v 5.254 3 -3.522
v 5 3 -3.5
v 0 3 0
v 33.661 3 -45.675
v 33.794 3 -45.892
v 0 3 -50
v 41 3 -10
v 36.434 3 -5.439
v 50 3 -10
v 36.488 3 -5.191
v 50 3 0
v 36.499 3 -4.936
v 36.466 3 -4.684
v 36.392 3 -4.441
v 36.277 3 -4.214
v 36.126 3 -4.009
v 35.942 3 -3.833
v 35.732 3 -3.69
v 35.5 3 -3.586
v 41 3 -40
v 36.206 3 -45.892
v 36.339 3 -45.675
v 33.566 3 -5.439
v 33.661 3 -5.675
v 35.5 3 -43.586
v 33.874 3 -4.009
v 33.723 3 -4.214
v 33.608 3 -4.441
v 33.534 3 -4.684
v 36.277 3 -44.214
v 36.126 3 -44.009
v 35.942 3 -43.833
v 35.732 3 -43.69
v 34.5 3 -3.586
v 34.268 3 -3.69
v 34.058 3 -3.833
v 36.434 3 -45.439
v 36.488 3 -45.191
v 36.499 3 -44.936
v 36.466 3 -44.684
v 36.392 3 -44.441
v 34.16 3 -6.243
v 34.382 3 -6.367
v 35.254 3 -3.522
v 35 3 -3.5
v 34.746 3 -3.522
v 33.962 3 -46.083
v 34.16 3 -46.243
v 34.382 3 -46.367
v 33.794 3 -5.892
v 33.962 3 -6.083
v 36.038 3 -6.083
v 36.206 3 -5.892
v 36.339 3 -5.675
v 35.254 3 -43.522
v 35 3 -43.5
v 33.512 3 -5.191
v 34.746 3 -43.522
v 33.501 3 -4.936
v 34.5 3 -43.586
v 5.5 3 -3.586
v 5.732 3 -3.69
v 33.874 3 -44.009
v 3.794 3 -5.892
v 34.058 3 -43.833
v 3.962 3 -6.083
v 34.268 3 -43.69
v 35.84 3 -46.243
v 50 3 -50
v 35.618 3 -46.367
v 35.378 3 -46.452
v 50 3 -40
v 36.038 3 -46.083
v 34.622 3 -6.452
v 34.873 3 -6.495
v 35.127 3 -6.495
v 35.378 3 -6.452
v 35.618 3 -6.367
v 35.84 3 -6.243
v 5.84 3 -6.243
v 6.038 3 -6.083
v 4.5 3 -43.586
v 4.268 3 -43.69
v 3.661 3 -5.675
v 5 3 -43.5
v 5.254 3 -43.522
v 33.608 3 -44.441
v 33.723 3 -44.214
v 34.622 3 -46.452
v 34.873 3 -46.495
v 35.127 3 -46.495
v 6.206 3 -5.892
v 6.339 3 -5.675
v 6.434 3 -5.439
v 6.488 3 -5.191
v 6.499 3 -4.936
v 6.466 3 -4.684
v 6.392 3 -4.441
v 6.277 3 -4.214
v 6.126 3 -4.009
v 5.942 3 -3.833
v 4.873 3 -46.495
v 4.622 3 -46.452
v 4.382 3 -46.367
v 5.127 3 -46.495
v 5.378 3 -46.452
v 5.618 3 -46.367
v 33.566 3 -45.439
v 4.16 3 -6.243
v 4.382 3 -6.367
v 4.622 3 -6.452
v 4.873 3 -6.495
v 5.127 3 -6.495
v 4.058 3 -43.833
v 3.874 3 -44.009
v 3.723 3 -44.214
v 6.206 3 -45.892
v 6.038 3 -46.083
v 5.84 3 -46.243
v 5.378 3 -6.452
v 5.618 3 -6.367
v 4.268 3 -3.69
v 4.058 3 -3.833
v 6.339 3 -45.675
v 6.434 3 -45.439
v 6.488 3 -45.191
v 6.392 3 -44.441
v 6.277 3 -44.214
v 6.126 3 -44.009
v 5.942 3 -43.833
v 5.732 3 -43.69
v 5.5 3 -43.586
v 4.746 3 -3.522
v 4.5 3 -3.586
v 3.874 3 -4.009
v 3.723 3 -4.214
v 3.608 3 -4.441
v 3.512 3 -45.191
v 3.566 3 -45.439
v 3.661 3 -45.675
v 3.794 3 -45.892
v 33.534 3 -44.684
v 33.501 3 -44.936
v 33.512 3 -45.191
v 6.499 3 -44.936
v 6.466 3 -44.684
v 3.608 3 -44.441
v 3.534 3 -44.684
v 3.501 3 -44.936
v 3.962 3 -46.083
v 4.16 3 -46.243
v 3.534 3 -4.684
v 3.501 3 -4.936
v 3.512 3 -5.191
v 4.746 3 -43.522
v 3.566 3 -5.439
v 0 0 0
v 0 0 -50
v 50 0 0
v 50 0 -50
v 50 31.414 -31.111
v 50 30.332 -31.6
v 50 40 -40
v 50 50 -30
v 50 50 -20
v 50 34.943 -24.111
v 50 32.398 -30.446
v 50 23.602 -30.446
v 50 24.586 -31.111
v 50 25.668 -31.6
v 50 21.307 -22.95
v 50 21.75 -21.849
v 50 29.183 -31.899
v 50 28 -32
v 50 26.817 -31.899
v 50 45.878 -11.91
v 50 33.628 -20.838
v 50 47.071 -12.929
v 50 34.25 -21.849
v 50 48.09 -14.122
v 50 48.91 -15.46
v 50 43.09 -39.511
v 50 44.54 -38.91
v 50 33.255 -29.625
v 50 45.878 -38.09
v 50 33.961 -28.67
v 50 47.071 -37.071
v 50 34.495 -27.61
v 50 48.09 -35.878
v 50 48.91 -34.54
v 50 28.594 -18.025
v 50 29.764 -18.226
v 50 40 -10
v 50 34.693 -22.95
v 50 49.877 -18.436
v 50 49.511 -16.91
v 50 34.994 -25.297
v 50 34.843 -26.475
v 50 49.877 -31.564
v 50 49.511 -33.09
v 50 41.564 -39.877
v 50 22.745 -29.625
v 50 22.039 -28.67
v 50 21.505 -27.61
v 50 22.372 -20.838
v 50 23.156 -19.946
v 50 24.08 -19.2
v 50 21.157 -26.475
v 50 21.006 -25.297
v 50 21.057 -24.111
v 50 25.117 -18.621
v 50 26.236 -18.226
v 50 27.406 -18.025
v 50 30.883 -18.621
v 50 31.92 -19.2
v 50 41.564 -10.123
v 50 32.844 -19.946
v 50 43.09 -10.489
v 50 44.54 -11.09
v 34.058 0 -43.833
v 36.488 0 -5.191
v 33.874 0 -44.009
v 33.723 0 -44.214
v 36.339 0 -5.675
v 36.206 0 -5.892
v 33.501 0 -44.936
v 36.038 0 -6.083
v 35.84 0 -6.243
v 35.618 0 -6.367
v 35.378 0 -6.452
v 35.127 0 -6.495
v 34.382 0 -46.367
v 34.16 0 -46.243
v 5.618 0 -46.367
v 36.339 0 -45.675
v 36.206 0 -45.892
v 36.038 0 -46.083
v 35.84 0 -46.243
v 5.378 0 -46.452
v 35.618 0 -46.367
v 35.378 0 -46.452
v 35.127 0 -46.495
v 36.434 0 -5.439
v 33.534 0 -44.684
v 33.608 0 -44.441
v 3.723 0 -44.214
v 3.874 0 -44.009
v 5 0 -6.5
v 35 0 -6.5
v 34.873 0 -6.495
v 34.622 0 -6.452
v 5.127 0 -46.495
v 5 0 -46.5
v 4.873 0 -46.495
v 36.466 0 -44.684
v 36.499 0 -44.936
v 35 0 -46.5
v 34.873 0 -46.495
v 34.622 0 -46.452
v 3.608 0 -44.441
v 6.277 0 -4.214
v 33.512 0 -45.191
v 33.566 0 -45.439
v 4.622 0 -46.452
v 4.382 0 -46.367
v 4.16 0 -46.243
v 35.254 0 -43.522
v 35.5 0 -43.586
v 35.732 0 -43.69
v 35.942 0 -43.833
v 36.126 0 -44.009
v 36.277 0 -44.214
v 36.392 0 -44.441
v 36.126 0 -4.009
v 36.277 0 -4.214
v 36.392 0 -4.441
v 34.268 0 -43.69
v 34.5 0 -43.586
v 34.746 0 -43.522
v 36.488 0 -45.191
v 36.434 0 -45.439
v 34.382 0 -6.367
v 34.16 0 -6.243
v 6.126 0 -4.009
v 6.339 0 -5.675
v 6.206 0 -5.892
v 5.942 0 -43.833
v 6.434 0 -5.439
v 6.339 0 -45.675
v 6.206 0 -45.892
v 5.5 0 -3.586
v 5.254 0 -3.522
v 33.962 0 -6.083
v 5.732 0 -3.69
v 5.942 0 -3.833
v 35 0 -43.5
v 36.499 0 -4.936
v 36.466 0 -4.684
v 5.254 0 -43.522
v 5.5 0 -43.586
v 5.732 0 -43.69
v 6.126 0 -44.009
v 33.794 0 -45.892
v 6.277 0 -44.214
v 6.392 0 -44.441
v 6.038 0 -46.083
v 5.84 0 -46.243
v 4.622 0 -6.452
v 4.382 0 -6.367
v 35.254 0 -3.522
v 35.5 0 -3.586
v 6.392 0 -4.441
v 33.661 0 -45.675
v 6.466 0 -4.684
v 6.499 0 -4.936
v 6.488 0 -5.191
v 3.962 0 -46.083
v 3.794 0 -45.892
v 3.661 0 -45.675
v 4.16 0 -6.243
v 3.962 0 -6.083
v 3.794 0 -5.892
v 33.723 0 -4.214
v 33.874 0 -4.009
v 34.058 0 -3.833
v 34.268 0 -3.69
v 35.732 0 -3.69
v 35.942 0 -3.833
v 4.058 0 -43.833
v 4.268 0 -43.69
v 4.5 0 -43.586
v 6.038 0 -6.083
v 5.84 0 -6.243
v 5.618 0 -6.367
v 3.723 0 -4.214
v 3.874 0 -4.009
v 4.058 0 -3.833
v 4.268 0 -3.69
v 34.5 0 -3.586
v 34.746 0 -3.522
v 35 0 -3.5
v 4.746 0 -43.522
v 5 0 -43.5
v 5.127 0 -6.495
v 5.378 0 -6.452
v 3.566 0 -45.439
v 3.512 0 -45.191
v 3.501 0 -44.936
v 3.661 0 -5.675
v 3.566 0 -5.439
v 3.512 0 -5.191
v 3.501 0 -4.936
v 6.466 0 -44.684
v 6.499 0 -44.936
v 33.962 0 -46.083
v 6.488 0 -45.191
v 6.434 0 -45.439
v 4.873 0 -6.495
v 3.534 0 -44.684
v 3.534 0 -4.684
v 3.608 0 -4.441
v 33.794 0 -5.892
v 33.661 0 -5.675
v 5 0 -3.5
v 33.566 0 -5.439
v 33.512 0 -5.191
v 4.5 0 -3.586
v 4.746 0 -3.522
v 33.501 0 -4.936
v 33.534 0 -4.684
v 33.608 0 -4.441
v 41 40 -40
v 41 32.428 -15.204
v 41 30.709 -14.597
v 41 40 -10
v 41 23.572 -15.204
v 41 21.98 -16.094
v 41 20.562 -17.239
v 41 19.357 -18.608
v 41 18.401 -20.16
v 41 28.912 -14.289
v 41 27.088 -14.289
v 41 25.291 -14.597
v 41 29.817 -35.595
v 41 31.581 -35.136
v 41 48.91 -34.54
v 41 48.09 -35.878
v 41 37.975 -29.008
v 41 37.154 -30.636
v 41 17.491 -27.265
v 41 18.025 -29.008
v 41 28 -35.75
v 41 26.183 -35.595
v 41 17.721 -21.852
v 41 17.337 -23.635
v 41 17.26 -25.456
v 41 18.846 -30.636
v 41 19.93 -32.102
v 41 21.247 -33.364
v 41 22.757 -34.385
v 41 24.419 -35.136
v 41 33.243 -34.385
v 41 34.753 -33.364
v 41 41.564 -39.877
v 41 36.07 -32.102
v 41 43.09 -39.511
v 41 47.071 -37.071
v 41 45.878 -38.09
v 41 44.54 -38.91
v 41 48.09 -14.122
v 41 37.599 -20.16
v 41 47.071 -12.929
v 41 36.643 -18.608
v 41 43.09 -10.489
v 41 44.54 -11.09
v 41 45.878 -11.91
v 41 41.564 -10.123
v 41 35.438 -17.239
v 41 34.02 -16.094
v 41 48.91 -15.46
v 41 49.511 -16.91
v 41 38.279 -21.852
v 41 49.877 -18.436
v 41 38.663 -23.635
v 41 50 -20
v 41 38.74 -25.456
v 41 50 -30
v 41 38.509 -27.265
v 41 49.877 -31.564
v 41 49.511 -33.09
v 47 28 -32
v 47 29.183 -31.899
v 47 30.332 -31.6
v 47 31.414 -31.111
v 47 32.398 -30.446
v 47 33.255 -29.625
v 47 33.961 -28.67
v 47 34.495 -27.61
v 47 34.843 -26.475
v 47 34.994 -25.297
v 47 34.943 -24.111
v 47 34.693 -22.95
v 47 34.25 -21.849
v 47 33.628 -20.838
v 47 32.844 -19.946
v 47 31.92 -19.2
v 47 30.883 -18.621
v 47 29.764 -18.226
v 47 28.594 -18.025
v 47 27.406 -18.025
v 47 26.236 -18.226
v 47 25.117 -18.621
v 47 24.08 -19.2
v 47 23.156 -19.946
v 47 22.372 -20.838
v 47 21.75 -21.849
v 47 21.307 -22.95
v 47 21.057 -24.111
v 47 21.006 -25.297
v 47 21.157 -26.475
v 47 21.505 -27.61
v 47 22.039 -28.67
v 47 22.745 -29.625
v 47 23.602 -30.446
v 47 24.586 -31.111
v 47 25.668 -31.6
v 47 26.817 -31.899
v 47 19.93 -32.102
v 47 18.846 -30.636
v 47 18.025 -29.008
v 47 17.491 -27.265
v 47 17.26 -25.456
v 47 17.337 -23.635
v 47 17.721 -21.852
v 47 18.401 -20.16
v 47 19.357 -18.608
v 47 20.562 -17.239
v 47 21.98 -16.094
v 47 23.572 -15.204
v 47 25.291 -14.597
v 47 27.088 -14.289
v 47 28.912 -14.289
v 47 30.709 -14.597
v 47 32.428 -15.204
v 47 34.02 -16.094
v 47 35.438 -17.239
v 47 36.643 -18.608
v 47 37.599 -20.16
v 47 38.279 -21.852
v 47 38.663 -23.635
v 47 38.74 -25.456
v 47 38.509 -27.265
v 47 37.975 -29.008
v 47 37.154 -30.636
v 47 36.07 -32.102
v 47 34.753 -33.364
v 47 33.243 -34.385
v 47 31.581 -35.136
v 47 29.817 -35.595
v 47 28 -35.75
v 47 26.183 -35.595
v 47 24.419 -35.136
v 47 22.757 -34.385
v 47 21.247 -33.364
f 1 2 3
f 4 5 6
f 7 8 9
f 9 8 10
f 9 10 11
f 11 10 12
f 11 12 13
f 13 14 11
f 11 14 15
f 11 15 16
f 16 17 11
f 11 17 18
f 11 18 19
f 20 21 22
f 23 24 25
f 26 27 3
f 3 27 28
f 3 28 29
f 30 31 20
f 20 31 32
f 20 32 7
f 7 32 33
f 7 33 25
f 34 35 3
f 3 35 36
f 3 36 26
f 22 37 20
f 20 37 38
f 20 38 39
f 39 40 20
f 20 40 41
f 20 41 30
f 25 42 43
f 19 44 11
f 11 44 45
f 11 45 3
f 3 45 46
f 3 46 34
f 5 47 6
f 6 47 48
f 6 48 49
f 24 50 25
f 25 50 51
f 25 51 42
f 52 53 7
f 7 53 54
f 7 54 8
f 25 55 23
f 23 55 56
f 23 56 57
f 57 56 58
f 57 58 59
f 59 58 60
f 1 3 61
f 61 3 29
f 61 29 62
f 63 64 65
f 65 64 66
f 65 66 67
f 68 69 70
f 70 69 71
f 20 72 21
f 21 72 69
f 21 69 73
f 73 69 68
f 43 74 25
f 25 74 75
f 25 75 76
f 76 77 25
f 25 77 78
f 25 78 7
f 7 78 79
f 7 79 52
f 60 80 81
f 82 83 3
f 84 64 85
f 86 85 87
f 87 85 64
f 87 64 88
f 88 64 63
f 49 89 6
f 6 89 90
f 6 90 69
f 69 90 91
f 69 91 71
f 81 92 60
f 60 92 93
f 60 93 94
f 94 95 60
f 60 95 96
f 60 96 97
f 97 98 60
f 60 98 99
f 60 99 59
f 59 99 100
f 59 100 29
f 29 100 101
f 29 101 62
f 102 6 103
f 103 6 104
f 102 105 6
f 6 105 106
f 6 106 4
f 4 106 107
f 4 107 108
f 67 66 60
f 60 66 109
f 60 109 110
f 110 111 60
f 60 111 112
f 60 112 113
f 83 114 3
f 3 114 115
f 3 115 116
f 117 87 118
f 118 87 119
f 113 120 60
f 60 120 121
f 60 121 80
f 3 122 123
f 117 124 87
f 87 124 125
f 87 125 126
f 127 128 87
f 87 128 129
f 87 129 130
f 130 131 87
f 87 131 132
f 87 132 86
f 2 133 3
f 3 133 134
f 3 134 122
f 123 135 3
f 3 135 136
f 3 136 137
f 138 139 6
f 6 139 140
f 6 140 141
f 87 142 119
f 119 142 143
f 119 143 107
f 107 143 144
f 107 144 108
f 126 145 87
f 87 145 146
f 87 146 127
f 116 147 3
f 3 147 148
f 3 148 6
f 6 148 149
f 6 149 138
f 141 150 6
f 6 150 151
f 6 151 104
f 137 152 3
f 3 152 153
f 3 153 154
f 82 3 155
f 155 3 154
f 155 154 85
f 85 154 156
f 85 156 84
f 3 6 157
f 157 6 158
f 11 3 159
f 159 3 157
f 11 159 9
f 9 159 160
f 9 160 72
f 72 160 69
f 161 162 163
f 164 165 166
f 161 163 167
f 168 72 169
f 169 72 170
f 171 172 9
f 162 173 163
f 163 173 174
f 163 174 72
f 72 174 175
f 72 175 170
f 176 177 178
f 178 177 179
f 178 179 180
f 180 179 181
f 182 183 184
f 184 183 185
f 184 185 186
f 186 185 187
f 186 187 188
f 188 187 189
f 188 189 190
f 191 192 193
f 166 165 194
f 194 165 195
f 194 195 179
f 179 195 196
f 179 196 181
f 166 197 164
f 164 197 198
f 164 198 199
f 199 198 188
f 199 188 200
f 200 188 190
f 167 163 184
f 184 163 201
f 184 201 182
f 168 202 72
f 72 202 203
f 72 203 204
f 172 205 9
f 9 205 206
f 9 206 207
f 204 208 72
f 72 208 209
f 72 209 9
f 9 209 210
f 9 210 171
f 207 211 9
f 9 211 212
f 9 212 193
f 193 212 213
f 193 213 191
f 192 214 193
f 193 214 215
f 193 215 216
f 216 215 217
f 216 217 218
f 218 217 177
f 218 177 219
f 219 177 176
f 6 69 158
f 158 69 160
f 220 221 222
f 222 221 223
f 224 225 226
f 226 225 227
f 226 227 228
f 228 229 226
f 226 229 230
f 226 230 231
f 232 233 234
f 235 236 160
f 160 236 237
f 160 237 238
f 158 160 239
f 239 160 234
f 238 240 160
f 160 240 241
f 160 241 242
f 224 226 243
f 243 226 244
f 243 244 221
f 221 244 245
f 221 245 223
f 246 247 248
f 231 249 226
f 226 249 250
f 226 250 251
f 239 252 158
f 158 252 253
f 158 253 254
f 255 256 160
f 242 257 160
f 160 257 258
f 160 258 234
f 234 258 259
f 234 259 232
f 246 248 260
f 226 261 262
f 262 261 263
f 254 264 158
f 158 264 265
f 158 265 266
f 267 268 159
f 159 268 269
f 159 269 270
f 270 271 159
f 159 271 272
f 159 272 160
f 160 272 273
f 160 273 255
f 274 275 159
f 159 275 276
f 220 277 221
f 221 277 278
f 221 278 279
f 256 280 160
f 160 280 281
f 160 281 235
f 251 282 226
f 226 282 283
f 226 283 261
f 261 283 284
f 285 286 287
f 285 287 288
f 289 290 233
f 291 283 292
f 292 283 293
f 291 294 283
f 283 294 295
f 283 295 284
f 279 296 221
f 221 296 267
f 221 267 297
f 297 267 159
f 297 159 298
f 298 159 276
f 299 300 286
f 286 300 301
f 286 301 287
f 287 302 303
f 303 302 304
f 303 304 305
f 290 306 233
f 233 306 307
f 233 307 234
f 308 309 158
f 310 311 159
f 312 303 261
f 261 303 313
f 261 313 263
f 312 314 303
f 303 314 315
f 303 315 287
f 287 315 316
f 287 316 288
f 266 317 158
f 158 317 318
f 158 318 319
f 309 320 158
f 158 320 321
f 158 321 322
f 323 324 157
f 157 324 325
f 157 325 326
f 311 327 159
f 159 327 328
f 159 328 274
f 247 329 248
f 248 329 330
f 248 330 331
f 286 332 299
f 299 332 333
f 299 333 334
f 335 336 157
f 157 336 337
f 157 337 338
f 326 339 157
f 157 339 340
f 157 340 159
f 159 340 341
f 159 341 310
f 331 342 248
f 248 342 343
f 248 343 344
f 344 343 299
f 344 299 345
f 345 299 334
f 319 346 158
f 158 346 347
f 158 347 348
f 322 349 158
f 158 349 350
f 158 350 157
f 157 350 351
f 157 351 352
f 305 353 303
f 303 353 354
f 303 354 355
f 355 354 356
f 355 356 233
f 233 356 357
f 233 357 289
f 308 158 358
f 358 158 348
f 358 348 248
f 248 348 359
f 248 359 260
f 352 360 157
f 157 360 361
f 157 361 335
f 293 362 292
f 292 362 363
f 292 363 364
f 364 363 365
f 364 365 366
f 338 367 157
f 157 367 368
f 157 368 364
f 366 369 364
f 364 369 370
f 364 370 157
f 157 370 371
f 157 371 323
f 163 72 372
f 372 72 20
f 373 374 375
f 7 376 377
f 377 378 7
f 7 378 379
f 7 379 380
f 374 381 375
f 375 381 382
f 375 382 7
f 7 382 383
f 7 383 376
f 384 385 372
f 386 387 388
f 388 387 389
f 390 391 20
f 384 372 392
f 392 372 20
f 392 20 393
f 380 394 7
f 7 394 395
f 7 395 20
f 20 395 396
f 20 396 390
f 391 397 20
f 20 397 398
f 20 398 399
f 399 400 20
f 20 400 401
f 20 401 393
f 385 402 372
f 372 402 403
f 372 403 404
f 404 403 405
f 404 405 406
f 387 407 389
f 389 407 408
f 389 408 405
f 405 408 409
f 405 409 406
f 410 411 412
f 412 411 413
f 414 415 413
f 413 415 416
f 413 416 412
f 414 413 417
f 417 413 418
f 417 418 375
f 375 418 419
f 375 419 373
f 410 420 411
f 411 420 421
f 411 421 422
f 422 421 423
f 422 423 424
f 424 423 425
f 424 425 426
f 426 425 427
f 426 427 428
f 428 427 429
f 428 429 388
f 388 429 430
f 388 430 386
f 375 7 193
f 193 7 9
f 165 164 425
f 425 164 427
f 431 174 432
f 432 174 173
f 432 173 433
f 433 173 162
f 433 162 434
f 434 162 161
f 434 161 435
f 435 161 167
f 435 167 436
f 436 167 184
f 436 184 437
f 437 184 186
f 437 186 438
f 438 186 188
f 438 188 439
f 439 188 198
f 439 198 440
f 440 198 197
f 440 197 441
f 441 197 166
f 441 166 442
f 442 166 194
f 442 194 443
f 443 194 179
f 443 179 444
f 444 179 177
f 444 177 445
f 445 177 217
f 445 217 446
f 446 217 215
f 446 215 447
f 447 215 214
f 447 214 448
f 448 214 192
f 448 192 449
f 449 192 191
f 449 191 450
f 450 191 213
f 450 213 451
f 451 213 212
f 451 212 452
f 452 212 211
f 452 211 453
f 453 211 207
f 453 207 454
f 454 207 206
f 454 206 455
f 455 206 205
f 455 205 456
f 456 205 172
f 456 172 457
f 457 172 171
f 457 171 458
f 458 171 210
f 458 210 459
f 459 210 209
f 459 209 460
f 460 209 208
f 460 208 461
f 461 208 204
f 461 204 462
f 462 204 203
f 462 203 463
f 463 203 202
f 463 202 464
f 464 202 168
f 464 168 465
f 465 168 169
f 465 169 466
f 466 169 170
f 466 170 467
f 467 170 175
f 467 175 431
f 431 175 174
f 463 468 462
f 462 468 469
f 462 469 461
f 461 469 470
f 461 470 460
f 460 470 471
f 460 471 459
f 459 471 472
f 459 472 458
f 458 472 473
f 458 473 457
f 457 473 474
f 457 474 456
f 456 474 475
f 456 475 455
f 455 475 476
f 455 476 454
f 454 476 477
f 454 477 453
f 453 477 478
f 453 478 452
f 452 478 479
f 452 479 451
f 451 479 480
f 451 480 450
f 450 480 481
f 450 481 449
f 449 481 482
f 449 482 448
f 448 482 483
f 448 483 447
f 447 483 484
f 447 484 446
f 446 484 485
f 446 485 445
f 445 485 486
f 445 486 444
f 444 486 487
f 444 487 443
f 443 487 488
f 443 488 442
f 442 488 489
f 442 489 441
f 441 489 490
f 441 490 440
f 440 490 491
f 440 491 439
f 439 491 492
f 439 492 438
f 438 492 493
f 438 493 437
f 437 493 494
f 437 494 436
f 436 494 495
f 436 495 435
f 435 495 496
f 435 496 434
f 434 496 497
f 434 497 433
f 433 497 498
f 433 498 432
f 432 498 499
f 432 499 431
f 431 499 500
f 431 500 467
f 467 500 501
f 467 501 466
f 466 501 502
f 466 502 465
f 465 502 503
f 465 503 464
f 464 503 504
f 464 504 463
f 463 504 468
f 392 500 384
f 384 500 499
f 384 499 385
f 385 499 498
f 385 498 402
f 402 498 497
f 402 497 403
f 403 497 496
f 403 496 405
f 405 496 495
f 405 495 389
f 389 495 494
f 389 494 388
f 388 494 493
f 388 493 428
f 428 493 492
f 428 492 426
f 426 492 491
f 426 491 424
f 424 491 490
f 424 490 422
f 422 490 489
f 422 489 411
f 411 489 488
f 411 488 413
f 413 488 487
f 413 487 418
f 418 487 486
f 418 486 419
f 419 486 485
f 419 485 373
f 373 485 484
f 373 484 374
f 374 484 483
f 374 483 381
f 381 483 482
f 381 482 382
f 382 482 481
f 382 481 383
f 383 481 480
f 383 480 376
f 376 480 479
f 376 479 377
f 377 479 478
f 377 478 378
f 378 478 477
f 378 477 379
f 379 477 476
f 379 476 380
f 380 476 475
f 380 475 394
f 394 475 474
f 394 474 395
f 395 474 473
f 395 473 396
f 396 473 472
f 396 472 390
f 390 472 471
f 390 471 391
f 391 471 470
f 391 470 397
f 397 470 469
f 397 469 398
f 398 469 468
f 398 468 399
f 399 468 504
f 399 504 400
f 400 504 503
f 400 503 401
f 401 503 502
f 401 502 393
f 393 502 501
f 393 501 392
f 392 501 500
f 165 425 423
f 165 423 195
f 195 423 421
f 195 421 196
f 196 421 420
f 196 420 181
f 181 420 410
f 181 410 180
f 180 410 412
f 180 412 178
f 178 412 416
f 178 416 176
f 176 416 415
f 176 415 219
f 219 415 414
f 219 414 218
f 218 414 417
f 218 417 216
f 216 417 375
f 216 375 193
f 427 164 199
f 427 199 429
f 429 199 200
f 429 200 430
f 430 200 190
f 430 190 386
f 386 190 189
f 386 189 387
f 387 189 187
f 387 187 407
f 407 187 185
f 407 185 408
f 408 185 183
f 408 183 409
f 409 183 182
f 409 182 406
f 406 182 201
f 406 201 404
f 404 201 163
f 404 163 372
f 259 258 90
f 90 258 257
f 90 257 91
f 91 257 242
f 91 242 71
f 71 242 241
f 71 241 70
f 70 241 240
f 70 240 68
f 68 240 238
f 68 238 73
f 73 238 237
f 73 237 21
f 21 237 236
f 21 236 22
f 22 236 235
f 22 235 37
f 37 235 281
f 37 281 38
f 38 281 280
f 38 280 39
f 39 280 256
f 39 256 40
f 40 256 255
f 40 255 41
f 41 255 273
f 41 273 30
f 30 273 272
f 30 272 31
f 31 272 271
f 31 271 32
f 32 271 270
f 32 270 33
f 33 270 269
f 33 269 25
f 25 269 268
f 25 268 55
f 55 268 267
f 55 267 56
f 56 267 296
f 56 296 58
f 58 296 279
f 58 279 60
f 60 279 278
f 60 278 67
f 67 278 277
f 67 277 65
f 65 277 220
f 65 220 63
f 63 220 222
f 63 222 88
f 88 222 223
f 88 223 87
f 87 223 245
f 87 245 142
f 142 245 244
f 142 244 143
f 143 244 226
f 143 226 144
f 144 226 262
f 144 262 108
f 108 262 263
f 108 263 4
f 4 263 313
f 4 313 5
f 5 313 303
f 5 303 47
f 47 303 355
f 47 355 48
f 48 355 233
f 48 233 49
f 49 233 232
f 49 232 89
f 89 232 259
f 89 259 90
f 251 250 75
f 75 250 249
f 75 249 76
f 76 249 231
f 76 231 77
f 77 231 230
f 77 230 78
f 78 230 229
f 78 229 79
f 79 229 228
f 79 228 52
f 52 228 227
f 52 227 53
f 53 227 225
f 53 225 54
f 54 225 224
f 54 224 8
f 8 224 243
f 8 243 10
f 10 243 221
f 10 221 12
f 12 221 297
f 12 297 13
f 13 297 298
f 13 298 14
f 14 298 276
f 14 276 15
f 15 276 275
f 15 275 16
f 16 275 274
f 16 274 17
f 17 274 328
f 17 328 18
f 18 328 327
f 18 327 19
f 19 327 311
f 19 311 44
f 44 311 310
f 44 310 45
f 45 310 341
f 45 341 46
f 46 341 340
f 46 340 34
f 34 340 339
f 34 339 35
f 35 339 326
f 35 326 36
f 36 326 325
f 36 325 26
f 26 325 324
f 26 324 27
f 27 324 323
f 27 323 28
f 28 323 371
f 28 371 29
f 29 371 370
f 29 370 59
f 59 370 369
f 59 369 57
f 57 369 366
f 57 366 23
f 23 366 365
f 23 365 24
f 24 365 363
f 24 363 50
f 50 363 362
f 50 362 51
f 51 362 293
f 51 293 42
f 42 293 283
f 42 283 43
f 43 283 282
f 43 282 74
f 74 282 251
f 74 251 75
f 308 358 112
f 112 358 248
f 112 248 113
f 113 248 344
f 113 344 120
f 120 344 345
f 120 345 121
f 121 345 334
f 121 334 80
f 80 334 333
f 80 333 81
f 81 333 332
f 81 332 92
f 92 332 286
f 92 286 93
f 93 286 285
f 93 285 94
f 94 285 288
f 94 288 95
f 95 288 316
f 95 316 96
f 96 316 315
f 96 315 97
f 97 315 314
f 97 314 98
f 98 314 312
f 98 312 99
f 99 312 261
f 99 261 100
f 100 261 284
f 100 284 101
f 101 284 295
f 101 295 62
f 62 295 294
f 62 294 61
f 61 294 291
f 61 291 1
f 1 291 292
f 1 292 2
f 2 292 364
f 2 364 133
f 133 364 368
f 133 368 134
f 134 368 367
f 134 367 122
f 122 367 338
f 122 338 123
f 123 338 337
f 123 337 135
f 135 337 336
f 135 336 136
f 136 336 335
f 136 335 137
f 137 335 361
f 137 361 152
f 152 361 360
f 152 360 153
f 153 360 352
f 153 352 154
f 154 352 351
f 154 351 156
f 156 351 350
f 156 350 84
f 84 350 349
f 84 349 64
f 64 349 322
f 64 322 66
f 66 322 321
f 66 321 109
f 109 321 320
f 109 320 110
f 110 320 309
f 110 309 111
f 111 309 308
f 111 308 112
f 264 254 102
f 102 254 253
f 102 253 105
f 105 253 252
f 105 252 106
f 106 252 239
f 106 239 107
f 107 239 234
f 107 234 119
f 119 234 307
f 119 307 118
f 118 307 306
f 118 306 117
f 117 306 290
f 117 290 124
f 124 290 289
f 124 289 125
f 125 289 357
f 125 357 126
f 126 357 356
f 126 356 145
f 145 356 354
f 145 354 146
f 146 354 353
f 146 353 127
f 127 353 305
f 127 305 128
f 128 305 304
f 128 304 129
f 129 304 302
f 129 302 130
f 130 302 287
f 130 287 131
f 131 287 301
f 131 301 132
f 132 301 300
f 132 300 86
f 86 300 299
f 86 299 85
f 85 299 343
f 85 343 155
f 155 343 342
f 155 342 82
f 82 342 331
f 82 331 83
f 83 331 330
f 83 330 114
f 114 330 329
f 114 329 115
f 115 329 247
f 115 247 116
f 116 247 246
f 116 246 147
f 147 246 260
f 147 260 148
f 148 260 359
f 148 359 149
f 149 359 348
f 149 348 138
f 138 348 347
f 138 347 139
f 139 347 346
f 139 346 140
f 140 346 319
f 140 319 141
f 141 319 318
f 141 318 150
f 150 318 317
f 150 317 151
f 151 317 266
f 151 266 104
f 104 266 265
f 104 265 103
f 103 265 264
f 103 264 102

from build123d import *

# Parameters (mm, degrees)
ESQUISSE1_W             = 50
ESQUISSE1_H             = 50
BOSS_EXTRU_1_DEPTH      = 3
ESQUISSE2_W             = 9
ESQUISSE2_H             = 30
BOSS_EXTRU_2_DEPTH      = 47
ESQUISSE3_R             = 7
ENL_V_MAT_EXTRU_2_DEPTH = 3
ENL_V_MAT_EXTRU_3_REACH = 86.906
ESQUISSE4_R             = 10.75
CONG_1_R                = 10
ENL_V_MAT_EXTRU_4_REACH = 86.906
ESQUISSE5_R             = 1.5


with BuildPart() as part:
    # Esquisse1 → Boss.-Extru.1 (new body)
    with BuildSketch(Plane(origin=(0, 0, 0), x_dir=(1, 0, 0), z_dir=(0, 1, 0))):
        with Locations((25, 25)):
            Rectangle(ESQUISSE1_W, ESQUISSE1_H)
    extrude(amount=BOSS_EXTRU_1_DEPTH)

    # Esquisse2 → Boss.-Extru.2 (add)
    with BuildSketch(Plane(origin=(0, 3, 0), x_dir=(1, 0, 0), z_dir=(0, 1, 0))):
        with Locations((45.5, 25)):
            Rectangle(ESQUISSE2_W, ESQUISSE2_H)
    extrude(amount=BOSS_EXTRU_2_DEPTH)

    # Esquisse3 → Enlèv. mat.-Extru.2 (cut)
    with BuildSketch(Plane(origin=(50, 0, 0), x_dir=(0, 0, -1), z_dir=(1, 0, 0))):
        with Locations((25, 28)):
            Circle(ESQUISSE3_R)
    extrude(amount=-ENL_V_MAT_EXTRU_2_DEPTH, mode=Mode.SUBTRACT)

    # Esquisse4 → Enlèv. mat.-Extru.3 (cut, up to next)
    with BuildSketch(Plane(origin=(47, 0, 0), x_dir=(0, 0, -1), z_dir=(1, 0, 0)), mode=Mode.PRIVATE) as enl_v_mat_extru_3_sk1:
        with Locations((25, 28)):
            Circle(ESQUISSE4_R)
    enl_v_mat_extru_3_tool1 = extrude(enl_v_mat_extru_3_sk1.sketch, amount=-ENL_V_MAT_EXTRU_3_REACH, mode=Mode.PRIVATE) & part.part
    add(enl_v_mat_extru_3_tool1.solids().sort_by_distance((47, 28, -25))[0], mode=Mode.SUBTRACT)

    # Congé1
    cong_1_edges = [part.edges().sort_by_distance(p)[0] for p in [
        (45.5, 50, -40),
        (45.5, 50, -10),
    ]]
    fillet(cong_1_edges, radius=CONG_1_R)

    # Esquisse5 → Enlèv. mat.-Extru.4 (cut, up to next)
    with BuildSketch(Plane(origin=(0, 3, 0), x_dir=(1, 0, 0), z_dir=(0, 1, 0)), mode=Mode.PRIVATE) as enl_v_mat_extru_4_sk1:
        with Locations(Location((35, 45, 0), (0, 0, 270))):
            Circle(ESQUISSE5_R)
    enl_v_mat_extru_4_tool1 = extrude(enl_v_mat_extru_4_sk1.sketch, amount=-ENL_V_MAT_EXTRU_4_REACH, mode=Mode.PRIVATE) & part.part
    # Esquisse5 → Enlèv. mat.-Extru.4 (cut, up to next)
    with BuildSketch(Plane(origin=(0, 3, 0), x_dir=(1, 0, 0), z_dir=(0, 1, 0)), mode=Mode.PRIVATE) as enl_v_mat_extru_4_sk2:
        with Locations(Location((5, 45, 0), (0, 0, 270))):
            Circle(ESQUISSE5_R)
    enl_v_mat_extru_4_tool2 = extrude(enl_v_mat_extru_4_sk2.sketch, amount=-ENL_V_MAT_EXTRU_4_REACH, mode=Mode.PRIVATE) & part.part
    # Esquisse5 → Enlèv. mat.-Extru.4 (cut, up to next)
    with BuildSketch(Plane(origin=(0, 3, 0), x_dir=(1, 0, 0), z_dir=(0, 1, 0)), mode=Mode.PRIVATE) as enl_v_mat_extru_4_sk3:
        with Locations(Location((5, 5, 0), (0, 0, 270))):
            Circle(ESQUISSE5_R)
    enl_v_mat_extru_4_tool3 = extrude(enl_v_mat_extru_4_sk3.sketch, amount=-ENL_V_MAT_EXTRU_4_REACH, mode=Mode.PRIVATE) & part.part
    # Esquisse5 → Enlèv. mat.-Extru.4 (cut, up to next)
    with BuildSketch(Plane(origin=(0, 3, 0), x_dir=(1, 0, 0), z_dir=(0, 1, 0)), mode=Mode.PRIVATE) as enl_v_mat_extru_4_sk4:
        with Locations(Location((35, 5, 0), (0, 0, 270))):
            Circle(ESQUISSE5_R)
    enl_v_mat_extru_4_tool4 = extrude(enl_v_mat_extru_4_sk4.sketch, amount=-ENL_V_MAT_EXTRU_4_REACH, mode=Mode.PRIVATE) & part.part
    add(enl_v_mat_extru_4_tool1.solids().sort_by_distance((35, 3, -45))[0], mode=Mode.SUBTRACT)
    add(enl_v_mat_extru_4_tool2.solids().sort_by_distance((5, 3, -45))[0], mode=Mode.SUBTRACT)
    add(enl_v_mat_extru_4_tool3.solids().sort_by_distance((5, 3, -5))[0], mode=Mode.SUBTRACT)
    add(enl_v_mat_extru_4_tool4.solids().sort_by_distance((35, 3, -5))[0], mode=Mode.SUBTRACT)


solid = part.part
